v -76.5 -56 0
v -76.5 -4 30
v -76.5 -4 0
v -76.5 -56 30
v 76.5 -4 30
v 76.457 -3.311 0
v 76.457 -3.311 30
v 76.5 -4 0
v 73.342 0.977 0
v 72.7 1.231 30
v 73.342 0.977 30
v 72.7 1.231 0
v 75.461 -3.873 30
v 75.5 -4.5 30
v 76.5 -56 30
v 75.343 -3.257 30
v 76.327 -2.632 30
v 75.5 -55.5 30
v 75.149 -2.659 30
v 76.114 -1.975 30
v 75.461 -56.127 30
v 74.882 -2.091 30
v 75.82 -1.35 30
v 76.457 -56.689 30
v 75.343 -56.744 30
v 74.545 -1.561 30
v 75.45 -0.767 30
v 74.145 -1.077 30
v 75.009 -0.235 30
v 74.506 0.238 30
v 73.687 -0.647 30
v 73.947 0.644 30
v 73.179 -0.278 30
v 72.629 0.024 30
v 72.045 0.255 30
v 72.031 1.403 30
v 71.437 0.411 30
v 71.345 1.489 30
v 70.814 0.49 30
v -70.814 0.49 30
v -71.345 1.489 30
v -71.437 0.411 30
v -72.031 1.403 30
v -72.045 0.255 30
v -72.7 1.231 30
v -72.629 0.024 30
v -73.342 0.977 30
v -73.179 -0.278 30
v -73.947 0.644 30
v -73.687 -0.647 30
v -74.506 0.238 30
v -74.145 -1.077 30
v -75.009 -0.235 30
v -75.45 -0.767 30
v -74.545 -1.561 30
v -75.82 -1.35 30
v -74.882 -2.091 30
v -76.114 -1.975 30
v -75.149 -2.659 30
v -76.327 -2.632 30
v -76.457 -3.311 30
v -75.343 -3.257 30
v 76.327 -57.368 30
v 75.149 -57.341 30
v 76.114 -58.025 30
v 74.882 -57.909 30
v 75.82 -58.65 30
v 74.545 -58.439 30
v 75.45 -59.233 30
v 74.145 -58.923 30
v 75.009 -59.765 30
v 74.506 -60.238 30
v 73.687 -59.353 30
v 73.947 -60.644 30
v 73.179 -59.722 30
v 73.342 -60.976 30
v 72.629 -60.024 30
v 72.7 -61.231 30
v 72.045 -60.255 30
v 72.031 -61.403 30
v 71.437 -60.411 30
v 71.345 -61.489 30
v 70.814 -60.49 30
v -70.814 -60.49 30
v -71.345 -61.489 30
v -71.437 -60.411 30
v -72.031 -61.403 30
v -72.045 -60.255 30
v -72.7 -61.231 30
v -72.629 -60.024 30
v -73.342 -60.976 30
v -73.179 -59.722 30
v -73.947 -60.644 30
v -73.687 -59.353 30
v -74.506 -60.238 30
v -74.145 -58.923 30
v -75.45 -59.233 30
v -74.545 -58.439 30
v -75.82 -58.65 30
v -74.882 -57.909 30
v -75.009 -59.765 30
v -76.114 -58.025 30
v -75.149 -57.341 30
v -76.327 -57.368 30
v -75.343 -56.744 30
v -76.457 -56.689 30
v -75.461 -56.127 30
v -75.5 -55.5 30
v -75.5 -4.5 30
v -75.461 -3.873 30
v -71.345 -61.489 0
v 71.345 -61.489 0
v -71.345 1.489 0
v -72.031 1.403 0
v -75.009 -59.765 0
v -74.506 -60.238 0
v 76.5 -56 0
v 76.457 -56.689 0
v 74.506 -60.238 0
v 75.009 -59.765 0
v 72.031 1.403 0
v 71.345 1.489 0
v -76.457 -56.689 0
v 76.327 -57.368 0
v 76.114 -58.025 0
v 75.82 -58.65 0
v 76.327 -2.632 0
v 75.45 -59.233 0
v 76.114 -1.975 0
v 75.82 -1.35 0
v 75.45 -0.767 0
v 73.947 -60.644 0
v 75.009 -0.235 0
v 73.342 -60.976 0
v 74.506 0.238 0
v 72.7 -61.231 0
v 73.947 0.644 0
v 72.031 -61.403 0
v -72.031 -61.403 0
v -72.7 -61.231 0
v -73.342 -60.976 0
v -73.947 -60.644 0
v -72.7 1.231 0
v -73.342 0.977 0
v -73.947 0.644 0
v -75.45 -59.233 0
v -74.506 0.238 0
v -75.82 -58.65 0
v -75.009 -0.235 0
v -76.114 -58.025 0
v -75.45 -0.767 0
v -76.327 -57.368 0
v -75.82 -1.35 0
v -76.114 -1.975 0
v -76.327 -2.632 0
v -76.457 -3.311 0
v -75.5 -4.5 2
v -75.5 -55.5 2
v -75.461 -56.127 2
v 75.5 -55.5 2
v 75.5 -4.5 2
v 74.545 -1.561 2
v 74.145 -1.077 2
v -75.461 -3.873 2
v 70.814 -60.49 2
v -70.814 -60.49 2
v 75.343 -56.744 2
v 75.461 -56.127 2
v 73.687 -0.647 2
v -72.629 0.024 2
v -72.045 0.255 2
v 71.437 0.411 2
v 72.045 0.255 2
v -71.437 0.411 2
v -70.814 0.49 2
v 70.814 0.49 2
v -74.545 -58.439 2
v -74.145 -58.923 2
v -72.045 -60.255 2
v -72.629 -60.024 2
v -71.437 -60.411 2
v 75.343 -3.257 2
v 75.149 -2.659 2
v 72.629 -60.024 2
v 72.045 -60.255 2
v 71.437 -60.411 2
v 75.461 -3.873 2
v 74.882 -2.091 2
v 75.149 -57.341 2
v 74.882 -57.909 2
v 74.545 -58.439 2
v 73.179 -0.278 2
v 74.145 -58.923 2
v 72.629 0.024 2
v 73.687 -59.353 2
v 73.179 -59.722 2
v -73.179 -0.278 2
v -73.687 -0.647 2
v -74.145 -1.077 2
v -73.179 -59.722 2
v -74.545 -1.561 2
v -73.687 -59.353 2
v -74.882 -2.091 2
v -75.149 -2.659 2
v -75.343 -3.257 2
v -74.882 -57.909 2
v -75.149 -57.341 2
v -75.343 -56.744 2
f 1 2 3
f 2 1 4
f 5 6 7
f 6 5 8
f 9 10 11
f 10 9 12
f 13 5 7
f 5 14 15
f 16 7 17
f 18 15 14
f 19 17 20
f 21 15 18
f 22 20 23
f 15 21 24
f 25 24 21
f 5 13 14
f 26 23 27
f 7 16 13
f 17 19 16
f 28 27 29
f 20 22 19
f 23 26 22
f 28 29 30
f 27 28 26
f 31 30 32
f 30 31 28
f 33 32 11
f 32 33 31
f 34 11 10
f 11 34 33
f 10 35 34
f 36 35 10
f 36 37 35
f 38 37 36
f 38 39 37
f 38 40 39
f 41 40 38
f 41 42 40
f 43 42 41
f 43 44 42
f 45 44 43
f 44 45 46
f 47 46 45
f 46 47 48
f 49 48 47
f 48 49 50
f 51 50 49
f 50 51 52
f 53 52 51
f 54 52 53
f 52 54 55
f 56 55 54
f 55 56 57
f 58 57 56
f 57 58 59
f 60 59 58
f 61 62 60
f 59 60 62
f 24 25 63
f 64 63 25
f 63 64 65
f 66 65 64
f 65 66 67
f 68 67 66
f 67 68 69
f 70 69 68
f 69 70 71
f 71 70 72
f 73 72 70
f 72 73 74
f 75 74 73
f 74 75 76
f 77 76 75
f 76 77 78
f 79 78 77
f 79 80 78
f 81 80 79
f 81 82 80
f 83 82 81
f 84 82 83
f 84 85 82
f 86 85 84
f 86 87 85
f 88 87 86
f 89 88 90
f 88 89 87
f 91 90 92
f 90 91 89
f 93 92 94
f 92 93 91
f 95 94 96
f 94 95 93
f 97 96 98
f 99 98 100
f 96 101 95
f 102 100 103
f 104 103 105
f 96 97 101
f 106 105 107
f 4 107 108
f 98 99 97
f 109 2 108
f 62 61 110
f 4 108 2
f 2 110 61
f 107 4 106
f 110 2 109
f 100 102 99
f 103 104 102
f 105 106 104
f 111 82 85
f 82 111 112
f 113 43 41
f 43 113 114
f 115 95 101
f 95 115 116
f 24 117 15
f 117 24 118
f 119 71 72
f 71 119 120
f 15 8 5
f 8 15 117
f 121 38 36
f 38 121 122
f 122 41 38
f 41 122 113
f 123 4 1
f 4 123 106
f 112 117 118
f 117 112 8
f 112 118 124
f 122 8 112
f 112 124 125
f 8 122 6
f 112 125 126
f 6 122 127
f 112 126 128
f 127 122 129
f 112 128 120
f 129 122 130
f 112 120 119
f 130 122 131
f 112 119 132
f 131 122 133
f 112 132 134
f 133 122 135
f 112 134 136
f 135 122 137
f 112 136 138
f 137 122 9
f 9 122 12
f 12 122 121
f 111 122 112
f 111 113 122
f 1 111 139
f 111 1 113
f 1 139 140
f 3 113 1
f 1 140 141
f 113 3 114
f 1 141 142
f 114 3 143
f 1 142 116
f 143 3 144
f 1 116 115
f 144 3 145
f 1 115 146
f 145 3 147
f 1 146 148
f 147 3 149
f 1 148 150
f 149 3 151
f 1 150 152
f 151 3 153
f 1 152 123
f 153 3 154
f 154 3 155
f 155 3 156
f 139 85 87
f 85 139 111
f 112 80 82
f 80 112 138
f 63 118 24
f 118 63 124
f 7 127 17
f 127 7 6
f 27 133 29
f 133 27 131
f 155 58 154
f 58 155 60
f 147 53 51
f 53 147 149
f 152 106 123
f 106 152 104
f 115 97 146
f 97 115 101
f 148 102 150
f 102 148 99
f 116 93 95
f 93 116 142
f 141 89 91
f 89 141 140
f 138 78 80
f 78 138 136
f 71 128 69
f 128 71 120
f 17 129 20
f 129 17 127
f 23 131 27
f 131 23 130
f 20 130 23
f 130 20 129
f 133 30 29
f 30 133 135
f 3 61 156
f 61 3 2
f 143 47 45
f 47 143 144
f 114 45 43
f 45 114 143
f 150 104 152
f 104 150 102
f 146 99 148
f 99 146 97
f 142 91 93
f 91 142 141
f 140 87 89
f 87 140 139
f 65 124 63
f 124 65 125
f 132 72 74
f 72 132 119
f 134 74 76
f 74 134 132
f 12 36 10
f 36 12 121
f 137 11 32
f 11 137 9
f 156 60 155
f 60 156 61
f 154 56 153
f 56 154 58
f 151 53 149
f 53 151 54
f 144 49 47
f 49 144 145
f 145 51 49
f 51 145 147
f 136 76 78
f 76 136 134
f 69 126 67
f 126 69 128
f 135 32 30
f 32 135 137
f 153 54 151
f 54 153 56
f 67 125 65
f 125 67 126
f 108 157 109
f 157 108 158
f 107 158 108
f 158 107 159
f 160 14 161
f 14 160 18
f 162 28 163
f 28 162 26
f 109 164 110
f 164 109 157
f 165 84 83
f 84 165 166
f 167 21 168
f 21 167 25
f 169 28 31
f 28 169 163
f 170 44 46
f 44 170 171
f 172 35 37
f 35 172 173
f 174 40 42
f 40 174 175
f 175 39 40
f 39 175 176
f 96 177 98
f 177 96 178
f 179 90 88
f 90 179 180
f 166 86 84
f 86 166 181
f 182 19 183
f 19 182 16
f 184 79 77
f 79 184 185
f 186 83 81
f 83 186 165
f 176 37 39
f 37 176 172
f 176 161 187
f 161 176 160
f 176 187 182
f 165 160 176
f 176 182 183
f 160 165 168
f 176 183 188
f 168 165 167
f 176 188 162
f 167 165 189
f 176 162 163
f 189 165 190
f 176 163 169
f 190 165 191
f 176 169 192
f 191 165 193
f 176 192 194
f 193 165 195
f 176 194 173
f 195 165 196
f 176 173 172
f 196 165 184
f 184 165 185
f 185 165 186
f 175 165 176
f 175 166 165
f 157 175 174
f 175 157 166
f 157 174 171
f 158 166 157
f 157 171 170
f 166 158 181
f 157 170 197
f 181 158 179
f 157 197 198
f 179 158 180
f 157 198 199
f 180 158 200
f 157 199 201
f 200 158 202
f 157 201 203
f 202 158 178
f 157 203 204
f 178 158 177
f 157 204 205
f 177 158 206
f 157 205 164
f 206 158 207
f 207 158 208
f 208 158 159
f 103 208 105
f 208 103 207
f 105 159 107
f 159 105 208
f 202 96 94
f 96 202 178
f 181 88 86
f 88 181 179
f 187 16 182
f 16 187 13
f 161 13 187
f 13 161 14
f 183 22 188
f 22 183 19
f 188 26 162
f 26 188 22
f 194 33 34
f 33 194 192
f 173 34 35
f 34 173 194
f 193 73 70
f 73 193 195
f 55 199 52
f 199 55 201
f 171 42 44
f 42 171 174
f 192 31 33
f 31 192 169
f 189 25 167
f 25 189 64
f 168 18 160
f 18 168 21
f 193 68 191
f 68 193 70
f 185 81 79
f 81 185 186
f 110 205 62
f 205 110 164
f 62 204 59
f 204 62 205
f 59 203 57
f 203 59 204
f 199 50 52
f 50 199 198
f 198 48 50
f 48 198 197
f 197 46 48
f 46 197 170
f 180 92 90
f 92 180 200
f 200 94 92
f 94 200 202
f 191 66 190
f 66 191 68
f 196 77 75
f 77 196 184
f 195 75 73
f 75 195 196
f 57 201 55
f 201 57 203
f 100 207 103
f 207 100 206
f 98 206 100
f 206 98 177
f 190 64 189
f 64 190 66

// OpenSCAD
$fn = 50;


difference() {
	union() {
		translate(v = [0, -30.0000000000, 0]) {
			hull() {
				translate(v = [-71.0000000000, 26.0000000000, 0]) {
					cylinder(h = 30, r = 5.5000000000);
				}
				translate(v = [71.0000000000, 26.0000000000, 0]) {
					cylinder(h = 30, r = 5.5000000000);
				}
				translate(v = [-71.0000000000, -26.0000000000, 0]) {
					cylinder(h = 30, r = 5.5000000000);
				}
				translate(v = [71.0000000000, -26.0000000000, 0]) {
					cylinder(h = 30, r = 5.5000000000);
				}
			}
		}
	}
	union() {
		translate(v = [0, -30.0000000000, 2]) {
			hull() {
				translate(v = [-70.5000000000, 25.5000000000, 0]) {
					cylinder(h = 60, r = 5);
				}
				translate(v = [70.5000000000, 25.5000000000, 0]) {
					cylinder(h = 60, r = 5);
				}
				translate(v = [-70.5000000000, -25.5000000000, 0]) {
					cylinder(h = 60, r = 5);
				}
				translate(v = [70.5000000000, -25.5000000000, 0]) {
					cylinder(h = 60, r = 5);
				}
			}
		}
	}
}
